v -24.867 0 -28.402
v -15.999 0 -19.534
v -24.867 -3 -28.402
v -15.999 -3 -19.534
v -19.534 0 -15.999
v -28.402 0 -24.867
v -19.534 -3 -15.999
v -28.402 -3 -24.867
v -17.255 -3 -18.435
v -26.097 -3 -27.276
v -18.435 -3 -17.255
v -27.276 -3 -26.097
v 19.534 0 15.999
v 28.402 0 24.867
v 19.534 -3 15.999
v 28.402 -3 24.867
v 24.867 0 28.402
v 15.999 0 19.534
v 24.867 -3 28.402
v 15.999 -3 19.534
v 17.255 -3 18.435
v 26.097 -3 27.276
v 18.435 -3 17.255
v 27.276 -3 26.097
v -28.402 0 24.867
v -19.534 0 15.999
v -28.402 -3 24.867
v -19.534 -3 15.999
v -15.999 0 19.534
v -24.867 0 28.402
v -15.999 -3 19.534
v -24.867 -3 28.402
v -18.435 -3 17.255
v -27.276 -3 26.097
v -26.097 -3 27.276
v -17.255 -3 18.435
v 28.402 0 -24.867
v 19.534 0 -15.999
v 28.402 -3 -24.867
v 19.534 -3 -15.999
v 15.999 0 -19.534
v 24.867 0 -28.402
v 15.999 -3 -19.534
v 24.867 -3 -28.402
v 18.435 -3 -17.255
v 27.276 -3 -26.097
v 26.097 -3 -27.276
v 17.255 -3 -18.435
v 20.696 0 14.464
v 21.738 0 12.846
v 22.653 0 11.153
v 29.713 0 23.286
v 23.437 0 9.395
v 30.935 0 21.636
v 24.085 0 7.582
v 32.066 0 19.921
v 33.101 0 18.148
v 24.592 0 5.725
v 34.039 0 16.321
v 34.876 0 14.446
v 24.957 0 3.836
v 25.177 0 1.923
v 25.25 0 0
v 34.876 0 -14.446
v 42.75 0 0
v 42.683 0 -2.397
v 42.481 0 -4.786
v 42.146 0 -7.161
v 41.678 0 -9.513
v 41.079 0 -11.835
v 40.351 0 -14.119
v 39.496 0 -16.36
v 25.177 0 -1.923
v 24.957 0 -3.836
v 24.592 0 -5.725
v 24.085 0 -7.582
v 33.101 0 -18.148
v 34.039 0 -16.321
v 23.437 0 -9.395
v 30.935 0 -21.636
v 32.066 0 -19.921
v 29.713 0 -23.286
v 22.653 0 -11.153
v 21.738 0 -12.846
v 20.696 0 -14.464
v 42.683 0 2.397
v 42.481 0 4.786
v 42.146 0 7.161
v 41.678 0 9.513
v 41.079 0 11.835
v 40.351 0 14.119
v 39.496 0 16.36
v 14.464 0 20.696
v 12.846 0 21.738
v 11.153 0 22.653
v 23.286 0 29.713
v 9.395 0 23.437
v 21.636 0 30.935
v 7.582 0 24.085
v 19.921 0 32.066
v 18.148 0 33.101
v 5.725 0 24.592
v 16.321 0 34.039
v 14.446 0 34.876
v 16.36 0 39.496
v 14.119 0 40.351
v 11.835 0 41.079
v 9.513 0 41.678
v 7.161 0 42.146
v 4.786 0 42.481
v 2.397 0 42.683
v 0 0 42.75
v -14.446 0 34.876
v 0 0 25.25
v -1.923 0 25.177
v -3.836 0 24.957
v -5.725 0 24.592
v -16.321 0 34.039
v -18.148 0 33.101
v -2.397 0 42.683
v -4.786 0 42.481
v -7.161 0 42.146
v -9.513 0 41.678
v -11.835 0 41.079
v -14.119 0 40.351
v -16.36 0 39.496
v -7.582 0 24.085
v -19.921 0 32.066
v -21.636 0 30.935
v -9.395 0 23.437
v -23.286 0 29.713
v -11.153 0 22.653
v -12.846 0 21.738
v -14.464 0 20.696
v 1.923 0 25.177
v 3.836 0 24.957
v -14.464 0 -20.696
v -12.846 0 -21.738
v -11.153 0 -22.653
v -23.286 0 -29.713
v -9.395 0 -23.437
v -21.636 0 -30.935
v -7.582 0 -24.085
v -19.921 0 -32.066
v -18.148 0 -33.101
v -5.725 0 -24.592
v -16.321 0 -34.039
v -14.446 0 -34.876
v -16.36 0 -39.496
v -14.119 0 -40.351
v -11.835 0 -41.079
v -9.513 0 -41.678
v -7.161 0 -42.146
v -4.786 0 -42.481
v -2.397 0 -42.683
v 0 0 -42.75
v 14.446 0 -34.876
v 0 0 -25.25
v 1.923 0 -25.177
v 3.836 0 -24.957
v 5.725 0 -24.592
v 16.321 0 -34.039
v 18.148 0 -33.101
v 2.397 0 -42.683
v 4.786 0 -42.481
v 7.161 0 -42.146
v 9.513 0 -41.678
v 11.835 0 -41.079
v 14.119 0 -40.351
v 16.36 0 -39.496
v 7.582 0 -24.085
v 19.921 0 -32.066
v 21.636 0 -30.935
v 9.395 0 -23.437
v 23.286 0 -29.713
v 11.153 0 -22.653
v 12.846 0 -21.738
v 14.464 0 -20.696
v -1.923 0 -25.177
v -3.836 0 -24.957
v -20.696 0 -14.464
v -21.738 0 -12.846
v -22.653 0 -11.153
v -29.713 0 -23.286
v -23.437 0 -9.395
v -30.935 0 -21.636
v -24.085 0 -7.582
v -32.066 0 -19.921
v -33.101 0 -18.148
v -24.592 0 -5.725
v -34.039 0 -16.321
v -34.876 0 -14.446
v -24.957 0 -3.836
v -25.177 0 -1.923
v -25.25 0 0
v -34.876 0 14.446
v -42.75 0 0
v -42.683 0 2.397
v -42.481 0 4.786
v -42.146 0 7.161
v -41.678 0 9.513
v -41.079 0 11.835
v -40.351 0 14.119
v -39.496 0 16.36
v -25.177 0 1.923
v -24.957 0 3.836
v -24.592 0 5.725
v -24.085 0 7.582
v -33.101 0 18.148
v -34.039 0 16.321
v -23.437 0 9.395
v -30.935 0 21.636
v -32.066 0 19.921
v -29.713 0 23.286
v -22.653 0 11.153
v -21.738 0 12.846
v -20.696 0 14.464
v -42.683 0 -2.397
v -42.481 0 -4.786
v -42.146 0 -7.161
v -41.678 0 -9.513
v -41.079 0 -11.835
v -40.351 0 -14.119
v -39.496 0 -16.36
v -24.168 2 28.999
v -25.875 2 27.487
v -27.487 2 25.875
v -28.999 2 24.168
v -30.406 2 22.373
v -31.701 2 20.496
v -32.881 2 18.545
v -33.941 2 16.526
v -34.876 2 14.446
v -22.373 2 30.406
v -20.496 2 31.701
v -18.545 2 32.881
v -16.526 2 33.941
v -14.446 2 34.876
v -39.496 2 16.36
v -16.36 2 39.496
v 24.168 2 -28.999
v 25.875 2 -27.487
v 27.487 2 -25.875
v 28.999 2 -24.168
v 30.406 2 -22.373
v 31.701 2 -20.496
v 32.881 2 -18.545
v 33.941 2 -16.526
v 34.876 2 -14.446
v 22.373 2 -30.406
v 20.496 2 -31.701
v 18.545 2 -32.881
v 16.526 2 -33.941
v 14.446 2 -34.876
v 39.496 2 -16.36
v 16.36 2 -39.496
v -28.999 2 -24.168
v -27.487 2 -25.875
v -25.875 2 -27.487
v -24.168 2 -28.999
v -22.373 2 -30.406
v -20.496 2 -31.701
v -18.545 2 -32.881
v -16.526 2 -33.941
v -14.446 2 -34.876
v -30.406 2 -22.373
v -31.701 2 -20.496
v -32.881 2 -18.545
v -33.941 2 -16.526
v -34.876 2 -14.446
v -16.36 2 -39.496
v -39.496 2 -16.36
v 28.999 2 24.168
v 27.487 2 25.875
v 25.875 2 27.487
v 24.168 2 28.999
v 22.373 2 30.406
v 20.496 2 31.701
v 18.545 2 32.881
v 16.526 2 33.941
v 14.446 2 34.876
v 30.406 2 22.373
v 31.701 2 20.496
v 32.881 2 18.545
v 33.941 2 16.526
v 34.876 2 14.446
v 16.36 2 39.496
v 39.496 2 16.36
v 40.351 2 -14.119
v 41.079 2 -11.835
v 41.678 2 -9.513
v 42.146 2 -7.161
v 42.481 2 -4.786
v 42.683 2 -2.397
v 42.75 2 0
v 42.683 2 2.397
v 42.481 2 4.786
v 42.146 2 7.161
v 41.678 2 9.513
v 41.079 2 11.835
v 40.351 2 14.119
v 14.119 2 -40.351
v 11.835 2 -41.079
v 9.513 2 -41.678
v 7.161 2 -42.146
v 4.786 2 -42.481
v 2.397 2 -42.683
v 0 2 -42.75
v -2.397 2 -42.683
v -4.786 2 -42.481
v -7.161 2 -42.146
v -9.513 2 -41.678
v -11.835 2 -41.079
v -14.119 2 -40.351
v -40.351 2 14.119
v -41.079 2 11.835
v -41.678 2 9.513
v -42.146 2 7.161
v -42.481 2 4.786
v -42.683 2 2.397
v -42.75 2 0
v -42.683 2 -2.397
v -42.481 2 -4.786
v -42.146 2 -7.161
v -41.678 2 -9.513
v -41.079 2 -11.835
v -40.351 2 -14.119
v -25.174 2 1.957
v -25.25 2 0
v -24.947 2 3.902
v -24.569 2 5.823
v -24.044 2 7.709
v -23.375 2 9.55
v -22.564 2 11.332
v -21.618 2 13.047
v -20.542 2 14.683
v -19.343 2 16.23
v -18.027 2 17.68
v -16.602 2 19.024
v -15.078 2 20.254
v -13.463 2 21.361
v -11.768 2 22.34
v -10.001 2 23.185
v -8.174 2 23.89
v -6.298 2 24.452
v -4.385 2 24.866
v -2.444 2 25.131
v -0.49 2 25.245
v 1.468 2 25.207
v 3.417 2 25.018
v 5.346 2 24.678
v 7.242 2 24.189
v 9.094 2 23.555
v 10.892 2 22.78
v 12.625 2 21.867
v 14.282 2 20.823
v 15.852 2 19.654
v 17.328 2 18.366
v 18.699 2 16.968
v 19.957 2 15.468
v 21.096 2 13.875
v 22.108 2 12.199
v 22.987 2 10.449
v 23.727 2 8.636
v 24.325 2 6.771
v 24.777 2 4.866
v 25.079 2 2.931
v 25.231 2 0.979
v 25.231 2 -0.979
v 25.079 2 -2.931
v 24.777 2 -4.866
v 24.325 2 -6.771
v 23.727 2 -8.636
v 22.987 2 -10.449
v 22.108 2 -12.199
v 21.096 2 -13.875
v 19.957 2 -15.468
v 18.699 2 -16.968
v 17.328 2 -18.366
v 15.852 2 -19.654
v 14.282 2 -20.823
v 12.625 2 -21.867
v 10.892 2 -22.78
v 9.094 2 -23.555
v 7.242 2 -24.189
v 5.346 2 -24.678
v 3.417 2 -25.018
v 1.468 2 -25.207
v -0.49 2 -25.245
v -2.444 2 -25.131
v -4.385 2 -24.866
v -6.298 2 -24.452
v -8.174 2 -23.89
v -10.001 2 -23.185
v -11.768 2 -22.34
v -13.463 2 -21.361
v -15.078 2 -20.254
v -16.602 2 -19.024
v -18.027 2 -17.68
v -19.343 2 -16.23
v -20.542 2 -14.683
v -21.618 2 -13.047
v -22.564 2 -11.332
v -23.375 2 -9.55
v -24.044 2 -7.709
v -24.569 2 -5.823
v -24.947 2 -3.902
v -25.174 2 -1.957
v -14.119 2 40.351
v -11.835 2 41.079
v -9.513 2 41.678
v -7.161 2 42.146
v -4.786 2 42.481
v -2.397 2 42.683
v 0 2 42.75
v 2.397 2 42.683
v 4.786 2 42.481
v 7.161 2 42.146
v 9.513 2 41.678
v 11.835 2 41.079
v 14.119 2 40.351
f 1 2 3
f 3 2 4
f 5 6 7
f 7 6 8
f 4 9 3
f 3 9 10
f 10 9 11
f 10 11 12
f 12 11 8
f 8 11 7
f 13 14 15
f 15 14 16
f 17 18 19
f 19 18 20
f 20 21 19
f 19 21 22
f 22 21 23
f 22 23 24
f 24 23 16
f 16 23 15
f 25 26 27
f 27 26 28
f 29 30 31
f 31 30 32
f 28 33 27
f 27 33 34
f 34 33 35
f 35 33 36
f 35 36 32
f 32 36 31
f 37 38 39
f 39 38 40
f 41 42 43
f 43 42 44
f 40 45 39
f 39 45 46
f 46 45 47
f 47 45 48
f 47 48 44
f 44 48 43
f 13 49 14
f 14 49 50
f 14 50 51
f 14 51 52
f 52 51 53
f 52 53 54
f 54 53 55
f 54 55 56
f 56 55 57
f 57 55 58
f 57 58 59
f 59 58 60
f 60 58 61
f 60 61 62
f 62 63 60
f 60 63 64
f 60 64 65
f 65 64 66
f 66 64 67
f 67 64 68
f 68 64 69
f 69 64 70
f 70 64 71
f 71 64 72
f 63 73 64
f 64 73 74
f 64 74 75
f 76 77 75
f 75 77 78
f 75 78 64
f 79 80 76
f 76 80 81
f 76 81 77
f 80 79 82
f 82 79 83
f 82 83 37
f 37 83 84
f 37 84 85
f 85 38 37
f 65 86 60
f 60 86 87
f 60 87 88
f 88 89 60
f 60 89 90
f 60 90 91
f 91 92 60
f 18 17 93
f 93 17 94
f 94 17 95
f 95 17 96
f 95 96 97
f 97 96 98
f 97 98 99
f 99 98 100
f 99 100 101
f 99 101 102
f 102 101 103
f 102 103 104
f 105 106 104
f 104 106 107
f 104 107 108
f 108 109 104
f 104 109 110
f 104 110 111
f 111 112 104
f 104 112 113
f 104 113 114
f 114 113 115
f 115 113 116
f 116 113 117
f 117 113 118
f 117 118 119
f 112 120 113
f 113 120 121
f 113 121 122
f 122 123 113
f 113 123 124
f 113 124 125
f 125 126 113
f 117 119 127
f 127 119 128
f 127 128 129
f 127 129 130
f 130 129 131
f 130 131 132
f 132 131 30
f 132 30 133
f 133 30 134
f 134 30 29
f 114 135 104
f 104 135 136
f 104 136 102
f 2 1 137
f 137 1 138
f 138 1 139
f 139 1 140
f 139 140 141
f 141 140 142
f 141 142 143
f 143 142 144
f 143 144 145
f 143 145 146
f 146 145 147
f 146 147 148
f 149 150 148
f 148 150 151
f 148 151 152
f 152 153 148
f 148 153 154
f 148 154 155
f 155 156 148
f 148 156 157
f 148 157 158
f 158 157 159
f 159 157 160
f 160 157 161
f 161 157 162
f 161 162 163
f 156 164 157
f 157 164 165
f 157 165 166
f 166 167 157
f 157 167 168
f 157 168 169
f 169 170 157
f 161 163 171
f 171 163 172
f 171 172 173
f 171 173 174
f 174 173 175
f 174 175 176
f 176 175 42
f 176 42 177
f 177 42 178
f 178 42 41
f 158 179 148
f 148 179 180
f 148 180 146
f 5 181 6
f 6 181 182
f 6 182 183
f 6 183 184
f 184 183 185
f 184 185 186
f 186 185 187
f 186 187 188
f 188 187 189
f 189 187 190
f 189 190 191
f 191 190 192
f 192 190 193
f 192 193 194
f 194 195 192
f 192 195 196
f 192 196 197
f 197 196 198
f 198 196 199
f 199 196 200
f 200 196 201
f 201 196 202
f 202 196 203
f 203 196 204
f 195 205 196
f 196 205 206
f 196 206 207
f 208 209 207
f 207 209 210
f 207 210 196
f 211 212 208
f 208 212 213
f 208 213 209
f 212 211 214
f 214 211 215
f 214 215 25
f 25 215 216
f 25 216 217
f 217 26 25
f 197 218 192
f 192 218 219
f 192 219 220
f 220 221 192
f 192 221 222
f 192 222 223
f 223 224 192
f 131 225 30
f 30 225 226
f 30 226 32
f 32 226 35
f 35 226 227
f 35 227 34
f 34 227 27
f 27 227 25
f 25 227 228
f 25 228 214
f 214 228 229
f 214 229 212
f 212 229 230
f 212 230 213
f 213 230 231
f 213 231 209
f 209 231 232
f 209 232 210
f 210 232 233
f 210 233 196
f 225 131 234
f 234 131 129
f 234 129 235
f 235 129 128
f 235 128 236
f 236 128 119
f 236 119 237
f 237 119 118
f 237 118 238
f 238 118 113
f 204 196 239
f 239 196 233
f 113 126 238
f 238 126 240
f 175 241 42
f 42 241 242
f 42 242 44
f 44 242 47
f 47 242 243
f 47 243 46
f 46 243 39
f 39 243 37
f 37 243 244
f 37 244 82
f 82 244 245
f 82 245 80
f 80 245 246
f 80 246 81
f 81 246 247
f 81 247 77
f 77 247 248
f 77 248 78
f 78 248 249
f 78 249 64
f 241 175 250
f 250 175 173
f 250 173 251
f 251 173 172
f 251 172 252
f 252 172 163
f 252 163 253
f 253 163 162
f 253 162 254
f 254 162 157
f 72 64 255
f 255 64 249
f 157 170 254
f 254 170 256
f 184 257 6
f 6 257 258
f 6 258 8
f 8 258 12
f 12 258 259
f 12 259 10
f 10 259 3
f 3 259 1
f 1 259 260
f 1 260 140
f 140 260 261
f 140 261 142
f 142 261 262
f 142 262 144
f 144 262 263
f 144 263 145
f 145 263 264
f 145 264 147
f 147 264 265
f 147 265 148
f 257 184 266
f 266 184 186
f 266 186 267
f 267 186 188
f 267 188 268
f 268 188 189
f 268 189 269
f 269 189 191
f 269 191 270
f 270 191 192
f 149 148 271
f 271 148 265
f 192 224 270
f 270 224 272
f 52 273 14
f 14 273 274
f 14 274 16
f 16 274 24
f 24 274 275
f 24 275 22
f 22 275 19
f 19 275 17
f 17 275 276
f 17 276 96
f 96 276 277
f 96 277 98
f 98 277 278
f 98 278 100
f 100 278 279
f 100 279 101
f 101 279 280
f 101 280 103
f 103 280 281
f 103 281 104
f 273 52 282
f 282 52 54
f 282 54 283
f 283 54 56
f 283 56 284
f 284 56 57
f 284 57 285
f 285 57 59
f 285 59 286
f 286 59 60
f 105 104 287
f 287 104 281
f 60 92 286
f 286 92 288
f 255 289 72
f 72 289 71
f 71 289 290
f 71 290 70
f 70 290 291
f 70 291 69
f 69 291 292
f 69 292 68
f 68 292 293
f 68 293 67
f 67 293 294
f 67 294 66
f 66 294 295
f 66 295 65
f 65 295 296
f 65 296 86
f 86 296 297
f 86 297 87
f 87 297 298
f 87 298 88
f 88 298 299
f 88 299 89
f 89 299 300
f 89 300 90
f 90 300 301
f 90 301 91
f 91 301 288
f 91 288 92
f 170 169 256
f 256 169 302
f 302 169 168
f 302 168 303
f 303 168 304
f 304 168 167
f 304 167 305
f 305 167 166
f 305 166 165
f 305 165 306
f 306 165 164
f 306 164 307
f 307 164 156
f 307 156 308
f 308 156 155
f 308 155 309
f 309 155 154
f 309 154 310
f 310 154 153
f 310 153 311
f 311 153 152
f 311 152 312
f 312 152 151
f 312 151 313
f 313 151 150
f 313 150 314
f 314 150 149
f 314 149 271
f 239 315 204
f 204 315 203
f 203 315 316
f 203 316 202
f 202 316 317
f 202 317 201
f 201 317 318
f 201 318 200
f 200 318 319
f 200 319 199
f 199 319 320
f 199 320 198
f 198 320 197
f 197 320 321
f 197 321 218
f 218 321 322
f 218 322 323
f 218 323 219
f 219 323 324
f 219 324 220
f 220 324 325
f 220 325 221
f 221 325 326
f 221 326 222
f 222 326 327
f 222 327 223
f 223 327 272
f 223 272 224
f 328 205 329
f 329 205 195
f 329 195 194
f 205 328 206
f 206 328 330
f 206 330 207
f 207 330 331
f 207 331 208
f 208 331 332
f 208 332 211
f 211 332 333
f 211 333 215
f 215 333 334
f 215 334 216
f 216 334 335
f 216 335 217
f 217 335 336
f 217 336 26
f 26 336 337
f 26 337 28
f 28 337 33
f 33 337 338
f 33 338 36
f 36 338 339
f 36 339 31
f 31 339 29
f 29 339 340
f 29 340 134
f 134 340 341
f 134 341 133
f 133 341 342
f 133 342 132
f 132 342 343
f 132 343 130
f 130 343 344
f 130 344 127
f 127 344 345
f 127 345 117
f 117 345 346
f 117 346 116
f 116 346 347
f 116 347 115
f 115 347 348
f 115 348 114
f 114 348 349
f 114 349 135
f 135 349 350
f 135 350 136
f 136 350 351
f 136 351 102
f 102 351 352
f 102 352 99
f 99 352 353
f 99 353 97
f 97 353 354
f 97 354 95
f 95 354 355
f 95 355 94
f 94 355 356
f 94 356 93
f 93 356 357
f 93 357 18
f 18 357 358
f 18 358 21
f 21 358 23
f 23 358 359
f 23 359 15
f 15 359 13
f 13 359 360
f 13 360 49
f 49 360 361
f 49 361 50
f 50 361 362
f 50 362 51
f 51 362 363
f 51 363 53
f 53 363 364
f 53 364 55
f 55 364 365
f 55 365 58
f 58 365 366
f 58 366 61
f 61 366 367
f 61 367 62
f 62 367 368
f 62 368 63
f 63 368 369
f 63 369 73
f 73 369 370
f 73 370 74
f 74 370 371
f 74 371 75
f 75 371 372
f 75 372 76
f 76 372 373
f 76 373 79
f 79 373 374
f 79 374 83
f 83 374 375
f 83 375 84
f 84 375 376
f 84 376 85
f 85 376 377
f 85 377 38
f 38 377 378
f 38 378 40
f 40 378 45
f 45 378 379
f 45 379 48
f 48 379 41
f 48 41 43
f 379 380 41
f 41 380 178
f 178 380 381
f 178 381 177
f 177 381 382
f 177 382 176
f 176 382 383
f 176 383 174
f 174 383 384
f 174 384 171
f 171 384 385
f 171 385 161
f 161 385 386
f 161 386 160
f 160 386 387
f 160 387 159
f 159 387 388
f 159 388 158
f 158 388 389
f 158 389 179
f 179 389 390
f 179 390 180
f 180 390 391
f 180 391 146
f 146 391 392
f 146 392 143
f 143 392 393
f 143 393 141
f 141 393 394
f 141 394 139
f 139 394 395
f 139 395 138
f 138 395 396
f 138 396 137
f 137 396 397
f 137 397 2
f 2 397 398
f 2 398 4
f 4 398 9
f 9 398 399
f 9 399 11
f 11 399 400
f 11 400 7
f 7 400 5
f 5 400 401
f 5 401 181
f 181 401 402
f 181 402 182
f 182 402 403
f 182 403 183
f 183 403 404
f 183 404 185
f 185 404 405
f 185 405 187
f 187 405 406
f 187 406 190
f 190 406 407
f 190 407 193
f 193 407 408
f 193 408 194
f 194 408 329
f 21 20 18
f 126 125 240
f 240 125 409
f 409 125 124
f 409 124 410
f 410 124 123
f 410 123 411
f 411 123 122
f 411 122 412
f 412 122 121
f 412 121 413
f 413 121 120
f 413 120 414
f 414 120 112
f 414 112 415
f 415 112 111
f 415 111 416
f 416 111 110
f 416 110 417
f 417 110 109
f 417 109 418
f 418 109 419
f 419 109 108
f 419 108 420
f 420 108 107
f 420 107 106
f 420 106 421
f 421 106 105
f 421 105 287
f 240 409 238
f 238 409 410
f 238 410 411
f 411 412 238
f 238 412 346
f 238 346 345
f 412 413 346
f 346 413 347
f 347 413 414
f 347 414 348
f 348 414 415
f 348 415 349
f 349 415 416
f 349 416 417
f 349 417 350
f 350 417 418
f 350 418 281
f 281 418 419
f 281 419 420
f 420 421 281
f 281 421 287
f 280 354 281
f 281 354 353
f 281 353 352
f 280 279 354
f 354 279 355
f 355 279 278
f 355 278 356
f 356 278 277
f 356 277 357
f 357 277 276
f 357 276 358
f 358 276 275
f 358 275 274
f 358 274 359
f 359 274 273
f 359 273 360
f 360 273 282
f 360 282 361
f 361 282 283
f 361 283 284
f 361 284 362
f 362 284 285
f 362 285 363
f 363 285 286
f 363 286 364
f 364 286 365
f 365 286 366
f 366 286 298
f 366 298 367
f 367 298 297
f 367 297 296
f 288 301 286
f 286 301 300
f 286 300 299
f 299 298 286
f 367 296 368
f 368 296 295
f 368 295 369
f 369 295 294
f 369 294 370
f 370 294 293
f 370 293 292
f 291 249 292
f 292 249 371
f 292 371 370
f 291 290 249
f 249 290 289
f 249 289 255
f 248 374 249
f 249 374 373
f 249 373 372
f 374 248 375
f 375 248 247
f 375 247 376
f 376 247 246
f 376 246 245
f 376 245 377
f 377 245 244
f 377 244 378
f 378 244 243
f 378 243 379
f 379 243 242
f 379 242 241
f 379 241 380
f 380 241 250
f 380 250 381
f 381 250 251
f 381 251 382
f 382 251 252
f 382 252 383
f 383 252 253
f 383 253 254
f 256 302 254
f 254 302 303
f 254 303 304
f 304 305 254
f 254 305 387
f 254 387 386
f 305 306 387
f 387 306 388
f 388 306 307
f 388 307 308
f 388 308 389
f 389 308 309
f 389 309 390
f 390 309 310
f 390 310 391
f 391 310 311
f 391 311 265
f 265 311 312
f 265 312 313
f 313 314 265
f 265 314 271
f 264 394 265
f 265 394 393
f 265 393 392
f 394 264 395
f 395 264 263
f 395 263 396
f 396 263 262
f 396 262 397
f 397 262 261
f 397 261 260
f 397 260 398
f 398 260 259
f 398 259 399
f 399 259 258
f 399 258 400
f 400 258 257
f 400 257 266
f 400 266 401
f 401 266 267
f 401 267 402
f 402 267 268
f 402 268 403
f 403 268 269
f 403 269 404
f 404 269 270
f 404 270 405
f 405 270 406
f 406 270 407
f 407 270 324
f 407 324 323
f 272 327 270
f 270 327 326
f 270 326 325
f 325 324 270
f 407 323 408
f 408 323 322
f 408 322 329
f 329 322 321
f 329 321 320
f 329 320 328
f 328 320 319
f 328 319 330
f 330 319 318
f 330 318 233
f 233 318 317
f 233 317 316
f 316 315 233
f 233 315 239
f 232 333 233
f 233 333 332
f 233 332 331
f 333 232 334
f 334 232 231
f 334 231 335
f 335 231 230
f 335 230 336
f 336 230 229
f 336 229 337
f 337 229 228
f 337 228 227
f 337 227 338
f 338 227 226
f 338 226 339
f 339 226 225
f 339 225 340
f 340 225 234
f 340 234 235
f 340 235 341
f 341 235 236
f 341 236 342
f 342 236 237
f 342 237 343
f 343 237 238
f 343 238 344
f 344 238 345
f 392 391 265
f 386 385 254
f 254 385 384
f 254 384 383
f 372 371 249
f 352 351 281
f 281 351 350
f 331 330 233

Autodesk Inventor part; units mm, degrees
ref_plane "YZ Plane" through (0, 0, 0) normal (1, 0, 0) x (0, 1, 0)
ref_plane "XZ Plane" through (0, 0, 0) normal (0, 1, 0) x (-1, 0, 0)
ref_plane "XY Plane" through (0, 0, 0) normal (0, 0, 1) x (1, 0, 0)
sketch "Sketch1" plane through (0, 0, 0) normal (0, 1, 0) x (-1, 0, 0)
  circle A0 centre (0, 0) radius 42.75
  circle A1 centre (0, 0) radius 25.25
  dimension "d0" = 85.5
  dimension "d1" = 50.5
extrude "Extrusion1" add sketch "Sketch1" along normal blind 2
sketch "Sketch2" plane through (0, 2, 0) normal (0, 1, 0) x (1, 0, 0)
  circle A0 centre (0, 0) radius 25.25 projected
  circle A1 centre (0, 0) radius 42.75 projected
  line L0 (0, 0) -> (26.6933, 26.6933)
  arc A2 (39.4959, 16.3597) -> (30.2288, 30.2288) centre (0, 0) ccw
  line L1 (0, 0) -> (39.4959, 16.3597) construction
  line L2 (0, 0) -> (26.6933, 26.6933) construction
  arc A3 (30.2288, 30.2288) -> (16.3597, 39.4959) centre (0, 0) ccw
  line L3 (0, 0) -> (30.2288, 30.2288) construction
  line L4 (0, 0) -> (17.5537, 7.271) construction
  line L5 (0, 0) -> (17.8544, 17.8544) construction
  line L6 (0, 0) -> (9.6628, 23.328) construction
  line L7 (0, 0) -> (17.8544, 17.8544) construction
  line L8 (16.3597, 39.4959) -> (14.4463, 34.8765)
  line L9 (34.8765, 14.4463) -> (39.4959, 16.3597)
  arc A4 (34.8765, 14.4463) -> (14.4463, 34.8765) centre (0, 0) ccw
  line L10 (16.3597, 39.4959) -> (14.4463, 34.8765)
  line L11 (39.4959, 16.3597) -> (34.8765, 14.4463)
  line L12 (0, 0) -> (9.6628, 23.328) construction
  line L13 (14.4463, 34.8765) -> (16.3597, 39.4959) construction
  line L14 (-39.4959, 16.3597) -> (-34.8765, 14.4463)
  arc A5 (-30.2288, 30.2288) -> (-39.4959, 16.3597) centre (0, 0) ccw
  arc A6 (-16.3597, 39.4959) -> (-30.2288, 30.2288) centre (0, 0) ccw
  line L15 (-14.4463, 34.8765) -> (-16.3597, 39.4959)
  arc A7 (-14.4463, 34.8765) -> (-34.8765, 14.4463) centre (0, 0) ccw
  line L16 (-16.3597, -39.4959) -> (-14.4463, -34.8765)
  arc A8 (-30.2288, -30.2288) -> (-16.3597, -39.4959) centre (0, 0) ccw
  arc A9 (-39.4959, -16.3597) -> (-30.2288, -30.2288) centre (0, 0) ccw
  line L17 (-34.8765, -14.4463) -> (-39.4959, -16.3597)
  arc A10 (-34.8765, -14.4463) -> (-14.4463, -34.8765) centre (0, 0) ccw
  line L18 (39.4959, -16.3597) -> (34.8765, -14.4463)
  arc A11 (30.2288, -30.2288) -> (39.4959, -16.3597) centre (0, 0) ccw
  arc A12 (16.3597, -39.4959) -> (30.2288, -30.2288) centre (0, 0) ccw
  line L19 (14.4463, -34.8765) -> (16.3597, -39.4959)
  arc A13 (14.4463, -34.8765) -> (34.8765, -14.4463) centre (0, 0) ccw
  point P0 (-26.6933, 26.6933)
  point P1 (-26.6933, -26.6933)
  point P2 (26.6933, -26.6933)
  dimension "d4" = 22.5
  dimension "d8" = 75.5
  dimension "d11" = 360
extrude "Extrusion2" cut sketch "Sketch2" against normal through all contours A4 L8 A1 L9 | L15 A7 L14 A1 | A1 L19 A13 L18 | L17 A10 L16 A1
sketch "Sketch5" plane through (0, 0, 0) normal (0, -1, 0) x (1, 0, 0)
  line L0 (-16.3597, 39.4959) -> (-14.4463, 34.8765) projected
  line L1 (-34.8765, 14.4463) -> (-39.4959, 16.3597) projected
  arc A0 (-39.4959, 16.3597) -> (-39.4959, -16.3597) centre (0, 0) ccw projected
  line L2 (-39.4959, -16.3597) -> (-34.8765, -14.4463) projected
  line L3 (-14.4463, -34.8765) -> (-16.3597, -39.4959) projected
  arc A1 (-16.3597, -39.4959) -> (16.3597, -39.4959) centre (0, 0) ccw projected
  line L4 (16.3597, -39.4959) -> (14.4463, -34.8765) projected
  line L5 (34.8765, -14.4463) -> (39.4959, -16.3597) projected
  arc A2 (39.4959, -16.3597) -> (39.4959, 16.3597) centre (0, 0) ccw projected
  line L6 (39.4959, 16.3597) -> (34.8765, 14.4463) projected
  line L7 (14.4463, 34.8765) -> (16.3597, 39.4959) projected
  arc A3 (16.3597, 39.4959) -> (-16.3597, 39.4959) centre (0, 0) ccw projected
  circle A4 centre (0, 0) radius 25.25 projected
  line L8 (0, 0) -> (-17.8544, -17.8544)
  line L9 (0, 0) -> (-5.6762, 0)
  line L10 (-19.8816, -22.7984) -> (-16.3892, -19.2083)
  line L11 (-22.8427, -19.8307) -> (-19.2083, -16.3892)
  arc A5 (-19.2083, -16.3892) -> (-16.3892, -19.2083) centre (0, 0) ccw
  arc A6 (-22.8427, -19.8307) -> (-19.8816, -22.7984) centre (0, 0) ccw
  line L12 (22.7984, -19.8816) -> (19.2083, -16.3892)
  line L13 (19.8307, -22.8427) -> (16.3892, -19.2083)
  arc A7 (16.3892, -19.2083) -> (19.2083, -16.3892) centre (0, 0) ccw
  arc A8 (19.8307, -22.8427) -> (22.7984, -19.8816) centre (0, 0) ccw
  line L14 (19.8816, 22.7984) -> (16.3892, 19.2083)
  line L15 (22.8427, 19.8307) -> (19.2083, 16.3892)
  arc A9 (19.2083, 16.3892) -> (16.3892, 19.2083) centre (0, 0) ccw
  arc A10 (22.8427, 19.8307) -> (19.8816, 22.7984) centre (0, 0) ccw
  line L16 (-22.7984, 19.8816) -> (-19.2083, 16.3892)
  line L17 (-19.8307, 22.8427) -> (-16.3892, 19.2083)
  arc A11 (-16.3892, 19.2083) -> (-19.2083, 16.3892) centre (0, 0) ccw
  arc A12 (-19.8307, 22.8427) -> (-22.7984, 19.8816) centre (0, 0) ccw
  arc A13 (-14.4463, 34.8765) -> (-34.8765, 14.4463) centre (0, 0) ccw projected
  arc A14 (-34.8765, -14.4463) -> (-14.4463, -34.8765) centre (0, 0) ccw projected
  arc A15 (14.4463, -34.8765) -> (34.8765, -14.4463) centre (0, 0) ccw projected
  arc A16 (34.8765, 14.4463) -> (14.4463, 34.8765) centre (0, 0) ccw projected
  point P0 (17.8544, -17.8544)
  point P1 (17.8544, 17.8544)
  point P2 (-17.8544, 17.8544)
  dimension "d31" = 45
  dimension "d35" = 360
extrude "Extrusion4" [suppressed]
sketch "Sketch6" plane through (0, 0, 0) normal (0, -1, 0) x (1, 0, 0)
  line L0 (-16.3597, 39.4959) -> (-14.4463, 34.8765) projected
  arc A0 (-14.4463, 34.8765) -> (-34.8765, 14.4463) centre (0, 0) ccw projected
  line L1 (-34.8765, 14.4463) -> (-39.4959, 16.3597) projected
  arc A1 (-39.4959, 16.3597) -> (-39.4959, -16.3597) centre (0, 0) ccw projected
  line L2 (-39.4959, -16.3597) -> (-34.8765, -14.4463) projected
  arc A2 (-34.8765, -14.4463) -> (-14.4463, -34.8765) centre (0, 0) ccw projected
  line L3 (-14.4463, -34.8765) -> (-16.3597, -39.4959) projected
  arc A3 (-16.3597, -39.4959) -> (16.3597, -39.4959) centre (0, 0) ccw projected
  line L4 (16.3597, -39.4959) -> (14.4463, -34.8765) projected
  arc A4 (14.4463, -34.8765) -> (34.8765, -14.4463) centre (0, 0) ccw projected
  line L5 (34.8765, -14.4463) -> (39.4959, -16.3597) projected
  arc A5 (39.4959, -16.3597) -> (39.4959, 16.3597) centre (0, 0) ccw projected
  line L6 (39.4959, 16.3597) -> (34.8765, 14.4463) projected
  arc A6 (34.8765, 14.4463) -> (14.4463, 34.8765) centre (0, 0) ccw projected
  line L7 (14.4463, 34.8765) -> (16.3597, 39.4959) projected
  arc A7 (16.3597, 39.4959) -> (-16.3597, 39.4959) centre (0, 0) ccw projected
  circle A8 centre (0, 0) radius 25.25 projected
  line L8 (0, 0) -> (26.6933, 26.6933)
  line L9 (15.999, 19.5345) -> (19.5345, 15.999)
  arc A9 (19.5345, 15.999) -> (15.999, 19.5345) centre (0, 0) ccw
  line L10 (19.5345, 15.999) -> (28.4024, 24.8669)
  line L11 (15.999, 19.5345) -> (24.8669, 28.4024)
  arc A10 (28.4024, 24.8669) -> (24.8669, 28.4024) centre (0, 0) ccw
  line L12 (-19.5345, 15.999) -> (-15.999, 19.5345)
  arc A11 (-15.999, 19.5345) -> (-19.5345, 15.999) centre (0, 0) ccw
  line L13 (-15.999, 19.5345) -> (-24.8669, 28.4024)
  line L14 (-19.5345, 15.999) -> (-28.4024, 24.8669)
  arc A12 (-24.8669, 28.4024) -> (-28.4024, 24.8669) centre (0, 0) ccw
  line L15 (-15.999, -19.5345) -> (-19.5345, -15.999)
  arc A13 (-19.5345, -15.999) -> (-15.999, -19.5345) centre (0, 0) ccw
  line L16 (-19.5345, -15.999) -> (-28.4024, -24.8669)
  line L17 (-15.999, -19.5345) -> (-24.8669, -28.4024)
  arc A14 (-28.4024, -24.8669) -> (-24.8669, -28.4024) centre (0, 0) ccw
  line L18 (19.5345, -15.999) -> (15.999, -19.5345)
  arc A15 (15.999, -19.5345) -> (19.5345, -15.999) centre (0, 0) ccw
  line L19 (15.999, -19.5345) -> (24.8669, -28.4024)
  line L20 (19.5345, -15.999) -> (28.4024, -24.8669)
  arc A16 (24.8669, -28.4024) -> (28.4024, -24.8669) centre (0, 0) ccw
  point P0 (-26.6933, 26.6933)
  point P1 (-26.6933, -26.6933)
  point P2 (26.6933, -26.6933)
  dimension "d39" = 5
  dimension "d40" = 2.5
  dimension "d43" = 360
extrude "Extrusion5" add sketch "Sketch6" along normal blind 3 contours L13 A8 L14 A0 | A6 L8 A8 L11 | A6 L10 A8 L8 | A8 L17 A2 L16 | A8 L20 A4 L19
equation "\"d40\" = 0.5 * d39"
properties part number "Dome Clip"
